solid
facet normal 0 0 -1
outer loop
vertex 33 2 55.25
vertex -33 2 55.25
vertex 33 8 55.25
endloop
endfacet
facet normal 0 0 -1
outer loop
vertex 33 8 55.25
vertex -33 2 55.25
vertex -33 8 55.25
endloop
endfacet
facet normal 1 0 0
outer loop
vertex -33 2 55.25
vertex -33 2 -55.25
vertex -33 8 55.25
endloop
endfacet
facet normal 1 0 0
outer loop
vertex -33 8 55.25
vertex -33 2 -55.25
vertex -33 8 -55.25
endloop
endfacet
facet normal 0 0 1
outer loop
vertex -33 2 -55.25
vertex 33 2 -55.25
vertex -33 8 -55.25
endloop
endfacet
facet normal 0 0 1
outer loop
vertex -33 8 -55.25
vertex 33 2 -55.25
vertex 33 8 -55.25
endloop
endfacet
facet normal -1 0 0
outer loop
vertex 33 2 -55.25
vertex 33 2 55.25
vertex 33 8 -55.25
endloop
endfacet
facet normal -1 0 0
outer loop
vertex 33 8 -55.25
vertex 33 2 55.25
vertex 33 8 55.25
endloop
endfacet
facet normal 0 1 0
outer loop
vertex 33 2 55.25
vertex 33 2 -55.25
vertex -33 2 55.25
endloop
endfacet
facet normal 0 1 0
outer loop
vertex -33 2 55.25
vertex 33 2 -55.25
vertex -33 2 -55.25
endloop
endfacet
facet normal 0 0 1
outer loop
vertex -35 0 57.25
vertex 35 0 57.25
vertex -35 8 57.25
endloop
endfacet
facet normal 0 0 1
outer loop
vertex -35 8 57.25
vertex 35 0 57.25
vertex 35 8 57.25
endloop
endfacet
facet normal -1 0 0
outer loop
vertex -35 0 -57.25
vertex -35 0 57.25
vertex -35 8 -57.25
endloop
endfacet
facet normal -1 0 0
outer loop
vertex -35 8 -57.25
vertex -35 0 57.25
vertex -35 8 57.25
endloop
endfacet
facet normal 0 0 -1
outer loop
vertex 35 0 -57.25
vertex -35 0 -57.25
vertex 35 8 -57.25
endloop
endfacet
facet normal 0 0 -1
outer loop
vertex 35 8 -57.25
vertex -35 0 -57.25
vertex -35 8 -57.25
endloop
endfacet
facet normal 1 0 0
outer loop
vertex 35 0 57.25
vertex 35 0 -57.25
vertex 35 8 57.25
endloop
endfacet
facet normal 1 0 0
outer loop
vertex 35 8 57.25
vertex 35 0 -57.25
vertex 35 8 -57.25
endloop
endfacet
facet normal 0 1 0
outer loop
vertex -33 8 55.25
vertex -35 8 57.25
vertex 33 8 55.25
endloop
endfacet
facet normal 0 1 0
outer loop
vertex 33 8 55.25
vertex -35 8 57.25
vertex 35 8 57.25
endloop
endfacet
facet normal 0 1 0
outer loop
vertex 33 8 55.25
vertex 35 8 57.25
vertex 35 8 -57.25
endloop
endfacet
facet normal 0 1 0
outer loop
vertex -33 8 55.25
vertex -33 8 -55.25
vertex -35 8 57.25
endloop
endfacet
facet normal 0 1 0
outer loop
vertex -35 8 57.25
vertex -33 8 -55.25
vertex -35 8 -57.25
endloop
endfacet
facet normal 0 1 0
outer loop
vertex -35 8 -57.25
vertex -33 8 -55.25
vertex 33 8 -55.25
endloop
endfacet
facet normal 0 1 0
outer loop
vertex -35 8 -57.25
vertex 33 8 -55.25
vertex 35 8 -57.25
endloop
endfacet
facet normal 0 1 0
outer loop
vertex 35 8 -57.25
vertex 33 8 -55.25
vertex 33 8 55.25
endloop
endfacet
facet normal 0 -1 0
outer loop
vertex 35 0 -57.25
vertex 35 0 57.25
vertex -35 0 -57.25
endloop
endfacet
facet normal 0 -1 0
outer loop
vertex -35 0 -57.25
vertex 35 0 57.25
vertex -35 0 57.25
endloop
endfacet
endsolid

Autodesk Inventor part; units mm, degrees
ref_plane "YZ Plane" through (0, 0, 0) normal (1, 0, 0) x (0, 1, 0)
ref_plane "XZ Plane" through (0, 0, 0) normal (0, 1, 0) x (-1, 0, 0)
ref_plane "XY Plane" through (0, 0, 0) normal (0, 0, 1) x (1, 0, 0)
sketch "Sketch1" plane through (0, 0, 0) normal (0, 1, 0) x (-1, 0, 0)
  line L0 (35, 57.25) -> (-35, 57.25)
  line L1 (-35, 57.25) -> (-35, -57.25)
  line L2 (-35, -57.25) -> (35, -57.25)
  line L3 (35, -57.25) -> (35, 57.25)
  line L4 (35, 57.25) -> (-35, -57.25) construction
  line L5 (-35, 57.25) -> (35, -57.25) construction
  point P0 (0, 0)
  dimension "d0" = 70
  dimension "d1" = 114.5
extrude "Extrusion1" add sketch "Sketch1" along normal blind 8
shell "Shell1" thickness 2 removed faces 1 at (-11.6667, 8, -19.0833)
properties part number "cap"
